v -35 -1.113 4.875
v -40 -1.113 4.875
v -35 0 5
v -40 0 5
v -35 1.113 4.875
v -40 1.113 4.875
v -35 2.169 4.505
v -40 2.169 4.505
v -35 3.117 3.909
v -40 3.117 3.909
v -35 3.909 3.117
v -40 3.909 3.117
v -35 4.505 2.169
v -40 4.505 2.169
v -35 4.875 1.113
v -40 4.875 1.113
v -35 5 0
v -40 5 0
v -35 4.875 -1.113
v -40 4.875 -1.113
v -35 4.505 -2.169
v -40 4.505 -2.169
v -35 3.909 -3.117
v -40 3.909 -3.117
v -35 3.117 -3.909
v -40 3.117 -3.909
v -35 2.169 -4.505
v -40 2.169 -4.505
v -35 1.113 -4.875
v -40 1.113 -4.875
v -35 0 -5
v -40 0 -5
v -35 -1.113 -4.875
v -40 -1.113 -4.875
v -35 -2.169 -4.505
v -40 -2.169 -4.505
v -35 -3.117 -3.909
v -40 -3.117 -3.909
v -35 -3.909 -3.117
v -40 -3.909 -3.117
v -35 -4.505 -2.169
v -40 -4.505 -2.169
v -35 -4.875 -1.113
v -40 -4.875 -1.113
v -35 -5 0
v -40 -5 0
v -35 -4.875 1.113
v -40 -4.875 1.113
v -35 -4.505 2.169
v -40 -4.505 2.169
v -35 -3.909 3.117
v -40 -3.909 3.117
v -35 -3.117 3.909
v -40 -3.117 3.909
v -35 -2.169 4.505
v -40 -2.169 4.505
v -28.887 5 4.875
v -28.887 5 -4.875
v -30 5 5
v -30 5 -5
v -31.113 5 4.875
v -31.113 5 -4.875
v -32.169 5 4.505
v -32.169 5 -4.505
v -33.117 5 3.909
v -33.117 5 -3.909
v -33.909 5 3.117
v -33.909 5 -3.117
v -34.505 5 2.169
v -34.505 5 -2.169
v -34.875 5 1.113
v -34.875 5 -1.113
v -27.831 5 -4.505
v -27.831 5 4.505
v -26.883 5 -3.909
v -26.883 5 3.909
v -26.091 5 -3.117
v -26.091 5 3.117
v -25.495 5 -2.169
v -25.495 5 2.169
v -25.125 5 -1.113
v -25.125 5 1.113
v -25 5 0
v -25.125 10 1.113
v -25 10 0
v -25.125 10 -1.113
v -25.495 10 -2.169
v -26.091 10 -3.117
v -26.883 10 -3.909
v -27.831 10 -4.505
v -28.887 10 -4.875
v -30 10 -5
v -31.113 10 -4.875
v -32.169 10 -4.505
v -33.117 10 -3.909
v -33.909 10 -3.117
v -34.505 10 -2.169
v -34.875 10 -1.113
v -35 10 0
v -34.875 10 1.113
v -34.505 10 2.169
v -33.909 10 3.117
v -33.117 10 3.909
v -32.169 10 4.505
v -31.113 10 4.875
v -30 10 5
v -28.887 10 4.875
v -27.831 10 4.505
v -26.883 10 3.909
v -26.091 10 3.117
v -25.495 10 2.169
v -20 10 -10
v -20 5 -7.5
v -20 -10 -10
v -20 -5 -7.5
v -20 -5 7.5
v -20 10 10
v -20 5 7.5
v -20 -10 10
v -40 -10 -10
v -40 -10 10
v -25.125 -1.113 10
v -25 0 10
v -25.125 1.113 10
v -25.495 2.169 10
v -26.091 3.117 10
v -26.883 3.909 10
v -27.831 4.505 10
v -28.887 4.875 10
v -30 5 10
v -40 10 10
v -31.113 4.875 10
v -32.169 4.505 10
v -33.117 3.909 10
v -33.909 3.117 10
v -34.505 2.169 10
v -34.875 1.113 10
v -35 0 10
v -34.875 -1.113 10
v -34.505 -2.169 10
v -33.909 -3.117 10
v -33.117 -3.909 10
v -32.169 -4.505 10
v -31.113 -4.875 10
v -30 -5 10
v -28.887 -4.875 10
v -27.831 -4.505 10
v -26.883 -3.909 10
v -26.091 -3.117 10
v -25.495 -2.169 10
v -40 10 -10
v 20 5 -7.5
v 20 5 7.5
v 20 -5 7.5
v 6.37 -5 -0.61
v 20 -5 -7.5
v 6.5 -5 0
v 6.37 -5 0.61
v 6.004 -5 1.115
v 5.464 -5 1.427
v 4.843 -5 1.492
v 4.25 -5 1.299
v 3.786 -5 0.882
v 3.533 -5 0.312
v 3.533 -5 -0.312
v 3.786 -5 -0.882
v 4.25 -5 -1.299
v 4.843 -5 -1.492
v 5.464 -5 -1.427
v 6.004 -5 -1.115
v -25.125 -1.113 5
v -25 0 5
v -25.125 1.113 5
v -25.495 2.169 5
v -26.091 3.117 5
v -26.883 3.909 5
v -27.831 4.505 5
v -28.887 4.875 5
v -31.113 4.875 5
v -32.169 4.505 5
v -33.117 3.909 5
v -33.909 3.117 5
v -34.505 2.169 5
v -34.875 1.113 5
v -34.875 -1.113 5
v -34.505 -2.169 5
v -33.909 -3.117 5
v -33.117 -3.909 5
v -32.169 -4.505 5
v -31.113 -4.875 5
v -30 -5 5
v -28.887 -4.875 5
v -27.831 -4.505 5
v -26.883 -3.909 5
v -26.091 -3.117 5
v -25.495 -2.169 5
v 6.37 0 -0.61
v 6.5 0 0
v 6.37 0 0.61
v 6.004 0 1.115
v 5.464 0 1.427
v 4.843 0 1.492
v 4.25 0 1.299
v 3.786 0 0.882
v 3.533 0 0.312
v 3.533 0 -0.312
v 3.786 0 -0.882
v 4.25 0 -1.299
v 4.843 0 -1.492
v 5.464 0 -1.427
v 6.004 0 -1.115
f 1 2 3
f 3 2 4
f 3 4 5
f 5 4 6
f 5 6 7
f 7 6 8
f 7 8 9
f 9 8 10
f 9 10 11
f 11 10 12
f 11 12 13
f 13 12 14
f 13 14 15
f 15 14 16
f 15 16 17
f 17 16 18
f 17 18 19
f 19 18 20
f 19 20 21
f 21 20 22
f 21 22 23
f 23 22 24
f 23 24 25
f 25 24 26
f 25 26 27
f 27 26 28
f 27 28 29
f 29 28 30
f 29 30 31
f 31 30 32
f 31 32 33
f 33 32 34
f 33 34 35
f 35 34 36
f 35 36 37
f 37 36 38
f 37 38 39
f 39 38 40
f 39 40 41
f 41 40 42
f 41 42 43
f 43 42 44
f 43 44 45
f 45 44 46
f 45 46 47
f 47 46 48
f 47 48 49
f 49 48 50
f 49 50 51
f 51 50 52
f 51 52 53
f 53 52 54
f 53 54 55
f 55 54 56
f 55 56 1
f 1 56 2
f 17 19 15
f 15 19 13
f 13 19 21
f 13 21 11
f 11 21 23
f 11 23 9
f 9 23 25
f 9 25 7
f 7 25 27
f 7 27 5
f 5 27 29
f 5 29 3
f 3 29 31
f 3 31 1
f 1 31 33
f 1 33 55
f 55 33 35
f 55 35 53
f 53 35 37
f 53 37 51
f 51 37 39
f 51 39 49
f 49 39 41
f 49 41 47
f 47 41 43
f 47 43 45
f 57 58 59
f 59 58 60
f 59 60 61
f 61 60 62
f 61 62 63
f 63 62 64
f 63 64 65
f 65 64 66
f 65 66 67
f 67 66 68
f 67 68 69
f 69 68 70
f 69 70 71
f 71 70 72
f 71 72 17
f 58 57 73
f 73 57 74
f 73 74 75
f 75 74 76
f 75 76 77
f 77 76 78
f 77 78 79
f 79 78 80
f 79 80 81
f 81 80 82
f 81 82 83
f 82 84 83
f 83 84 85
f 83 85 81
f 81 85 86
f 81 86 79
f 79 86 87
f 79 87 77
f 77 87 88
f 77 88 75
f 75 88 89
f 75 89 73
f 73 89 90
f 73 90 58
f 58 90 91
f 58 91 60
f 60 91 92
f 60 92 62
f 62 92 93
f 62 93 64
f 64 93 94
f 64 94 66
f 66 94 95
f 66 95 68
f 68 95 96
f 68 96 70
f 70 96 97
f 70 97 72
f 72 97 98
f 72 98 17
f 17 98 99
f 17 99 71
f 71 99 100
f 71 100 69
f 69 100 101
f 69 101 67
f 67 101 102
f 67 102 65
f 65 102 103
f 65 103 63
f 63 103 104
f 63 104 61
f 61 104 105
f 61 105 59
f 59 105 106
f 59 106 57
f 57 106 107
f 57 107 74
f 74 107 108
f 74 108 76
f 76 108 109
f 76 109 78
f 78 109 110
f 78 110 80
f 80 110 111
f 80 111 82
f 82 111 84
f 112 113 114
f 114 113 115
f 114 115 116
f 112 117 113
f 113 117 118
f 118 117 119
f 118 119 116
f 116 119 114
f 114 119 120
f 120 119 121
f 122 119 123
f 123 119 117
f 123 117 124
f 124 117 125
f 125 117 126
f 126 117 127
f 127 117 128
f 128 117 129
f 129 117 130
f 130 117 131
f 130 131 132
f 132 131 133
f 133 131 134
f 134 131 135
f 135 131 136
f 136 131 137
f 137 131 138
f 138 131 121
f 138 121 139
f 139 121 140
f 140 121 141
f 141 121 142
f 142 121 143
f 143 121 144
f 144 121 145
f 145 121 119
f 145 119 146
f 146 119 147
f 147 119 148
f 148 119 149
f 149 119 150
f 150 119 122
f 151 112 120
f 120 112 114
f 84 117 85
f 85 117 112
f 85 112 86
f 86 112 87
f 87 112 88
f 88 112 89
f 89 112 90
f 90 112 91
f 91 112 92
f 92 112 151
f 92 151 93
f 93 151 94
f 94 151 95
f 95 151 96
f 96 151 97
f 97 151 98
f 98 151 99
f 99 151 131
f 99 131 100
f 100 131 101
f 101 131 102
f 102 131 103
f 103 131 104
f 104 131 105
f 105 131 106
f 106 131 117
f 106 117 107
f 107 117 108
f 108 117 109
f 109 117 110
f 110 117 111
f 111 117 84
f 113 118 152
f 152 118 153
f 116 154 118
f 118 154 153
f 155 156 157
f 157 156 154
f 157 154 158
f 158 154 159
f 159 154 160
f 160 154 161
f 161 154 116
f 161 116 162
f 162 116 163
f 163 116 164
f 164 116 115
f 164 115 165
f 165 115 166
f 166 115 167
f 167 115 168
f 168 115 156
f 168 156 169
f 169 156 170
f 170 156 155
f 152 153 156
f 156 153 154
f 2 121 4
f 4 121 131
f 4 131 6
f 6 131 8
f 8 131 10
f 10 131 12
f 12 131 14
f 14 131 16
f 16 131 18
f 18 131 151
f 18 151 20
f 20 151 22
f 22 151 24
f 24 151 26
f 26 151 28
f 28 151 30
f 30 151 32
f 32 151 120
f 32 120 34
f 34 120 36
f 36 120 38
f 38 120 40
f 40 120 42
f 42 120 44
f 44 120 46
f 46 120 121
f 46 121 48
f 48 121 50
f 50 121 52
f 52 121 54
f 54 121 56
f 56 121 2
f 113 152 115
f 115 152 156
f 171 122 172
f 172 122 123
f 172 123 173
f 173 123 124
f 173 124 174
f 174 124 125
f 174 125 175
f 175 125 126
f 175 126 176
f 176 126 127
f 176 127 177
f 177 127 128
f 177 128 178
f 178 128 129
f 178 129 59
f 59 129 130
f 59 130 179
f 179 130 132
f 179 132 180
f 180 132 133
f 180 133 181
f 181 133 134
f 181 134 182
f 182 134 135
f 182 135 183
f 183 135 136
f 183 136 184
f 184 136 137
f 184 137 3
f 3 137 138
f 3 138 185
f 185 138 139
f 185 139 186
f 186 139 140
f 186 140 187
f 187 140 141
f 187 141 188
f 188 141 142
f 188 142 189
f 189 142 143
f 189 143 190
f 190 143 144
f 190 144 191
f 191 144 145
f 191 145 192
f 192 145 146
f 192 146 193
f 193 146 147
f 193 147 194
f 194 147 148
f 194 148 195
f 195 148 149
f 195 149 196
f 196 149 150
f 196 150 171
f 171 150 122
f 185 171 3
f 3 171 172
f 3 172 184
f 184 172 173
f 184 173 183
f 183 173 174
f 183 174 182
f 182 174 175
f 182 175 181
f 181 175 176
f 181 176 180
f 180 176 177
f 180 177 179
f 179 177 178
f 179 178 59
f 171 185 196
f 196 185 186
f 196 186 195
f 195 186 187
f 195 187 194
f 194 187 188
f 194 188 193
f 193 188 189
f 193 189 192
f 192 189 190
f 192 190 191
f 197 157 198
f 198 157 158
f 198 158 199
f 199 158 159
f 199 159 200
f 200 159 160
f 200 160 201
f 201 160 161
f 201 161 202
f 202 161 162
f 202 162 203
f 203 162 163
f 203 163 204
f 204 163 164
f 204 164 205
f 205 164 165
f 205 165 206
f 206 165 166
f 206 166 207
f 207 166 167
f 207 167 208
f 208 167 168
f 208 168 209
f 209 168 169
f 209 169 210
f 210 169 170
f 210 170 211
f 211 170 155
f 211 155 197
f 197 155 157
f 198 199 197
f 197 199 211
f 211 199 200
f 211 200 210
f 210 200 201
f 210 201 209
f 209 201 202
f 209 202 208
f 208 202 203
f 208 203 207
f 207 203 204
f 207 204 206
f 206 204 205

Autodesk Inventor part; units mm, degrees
ref_plane "YZ Plane" through (0, 0, 0) normal (1, 0, 0) x (0, 1, 0)
ref_plane "XZ Plane" through (0, 0, 0) normal (0, 1, 0) x (-1, 0, 0)
ref_plane "XY Plane" through (0, 0, 0) normal (0, 0, 1) x (1, 0, 0)
sketch "Sketch1" plane through (0, 0, 0) normal (0, 1, 0) x (-1, 0, 0)
  line L0 (-20, 7.5) -> (20, 7.5)
  line L1 (20, 7.5) -> (20, -7.5)
  line L2 (20, -7.5) -> (-20, -7.5)
  line L3 (-20, -7.5) -> (-20, 7.5)
  line L4 (-20, 7.5) -> (20, -7.5) construction
  line L5 (20, 7.5) -> (-20, -7.5) construction
  line L6 (20, 7.5) -> (40, 7.5)
  line L7 (40, 7.5) -> (40, -7.5)
  line L8 (40, -7.5) -> (20, -7.5)
  line L9 (20, -7.5) -> (20, 7.5)
  line L10 (20, 10) -> (40, 10)
  line L11 (40, 10) -> (40, -10)
  line L12 (40, -10) -> (20, -10)
  line L13 (20, -10) -> (20, 10)
  line L14 (20, 10) -> (40, -10) construction
  line L15 (40, 10) -> (20, -10) construction
  point P0 (0, 0)
  point P1 (30, 0)
  point P2 (20, -7.5)
  point P3 (40, -7.5)
  point P4 (20, 7.5)
  dimension "d0" = 40
  dimension "d1" = 15
  dimension "d2" = 20
  dimension "d3" = 20
  dimension "d4" = 20
extrude "Extrusion1" add sketch "Sketch1" along normal mid plane 10 contours L0 L1 L2 L3 | L6 L7 L8 L1
extrude "Extrusion2" add sketch "Sketch1" along normal mid plane 20 contours L6 L7 L8 L1 | L13 L10 L11 L6 | L8 L11 L12 L13
sketch "Sketch3" plane through (-40, -10, 10) normal (-1, 0, 0) x (0, 0, 1)
  circle A0 centre (-10, 10) radius 5
  dimension "d12" = 10
sketch "Sketch4" plane through (-40, 10, 10) normal (0, 0, 1) x (1, 0, 0)
  line L0 (20, 0) -> (20, -20) projected
  line L1 (0, 0) -> (20, 0) projected
  line L2 (0, -20) -> (0, 0) projected
  line L3 (20, -20) -> (0, -20) projected
  circle A0 centre (10, -10) radius 5
  point P0 (40, -10)
  dimension "d13" = 10
sketch "Sketch2" plane through (0, 10, 0) normal (0, 1, 0) x (1, 0, 0)
  line L0 (-20, -10) -> (-20, 10) projected
  line L1 (-20, 10) -> (-40, 10) projected
  line L2 (-40, 10) -> (-40, -10) projected
  line L3 (-40, -10) -> (-20, -10) projected
  circle A0 centre (-30, 0) radius 5
  point P0 (0, 0)
  dimension "d9" = 10
extrude "Extrusion3" cut sketch "Sketch2" against normal blind 5 contours A0
extrude "Extrusion4" cut sketch "Sketch3" against normal blind 5
extrude "Extrusion5" cut sketch "Sketch4" against normal blind 5 contours A0
sketch "Sketch5" plane through (0, -5, 0) normal (0, -1, 0) x (1, 0, 0)
  line L0 (-20, 7.5) -> (-20, -7.5) projected
  line L1 (-20, -7.5) -> (20, -7.5) projected
  line L2 (20, -7.5) -> (20, 7.5) projected
  line L3 (20, 7.5) -> (-20, 7.5) projected
  line L4 (20, 0) -> (-20, 0)
  circle A0 centre (5, 0) radius 1.5
  point P0 (0, 0)
  dimension "d18" = 3
  dimension "d19" = 15
extrude "Extrusion6" cut sketch "Sketch5" against normal blind 5 contours A0 L4 | L4 A0
properties part number "calibration_tool"
